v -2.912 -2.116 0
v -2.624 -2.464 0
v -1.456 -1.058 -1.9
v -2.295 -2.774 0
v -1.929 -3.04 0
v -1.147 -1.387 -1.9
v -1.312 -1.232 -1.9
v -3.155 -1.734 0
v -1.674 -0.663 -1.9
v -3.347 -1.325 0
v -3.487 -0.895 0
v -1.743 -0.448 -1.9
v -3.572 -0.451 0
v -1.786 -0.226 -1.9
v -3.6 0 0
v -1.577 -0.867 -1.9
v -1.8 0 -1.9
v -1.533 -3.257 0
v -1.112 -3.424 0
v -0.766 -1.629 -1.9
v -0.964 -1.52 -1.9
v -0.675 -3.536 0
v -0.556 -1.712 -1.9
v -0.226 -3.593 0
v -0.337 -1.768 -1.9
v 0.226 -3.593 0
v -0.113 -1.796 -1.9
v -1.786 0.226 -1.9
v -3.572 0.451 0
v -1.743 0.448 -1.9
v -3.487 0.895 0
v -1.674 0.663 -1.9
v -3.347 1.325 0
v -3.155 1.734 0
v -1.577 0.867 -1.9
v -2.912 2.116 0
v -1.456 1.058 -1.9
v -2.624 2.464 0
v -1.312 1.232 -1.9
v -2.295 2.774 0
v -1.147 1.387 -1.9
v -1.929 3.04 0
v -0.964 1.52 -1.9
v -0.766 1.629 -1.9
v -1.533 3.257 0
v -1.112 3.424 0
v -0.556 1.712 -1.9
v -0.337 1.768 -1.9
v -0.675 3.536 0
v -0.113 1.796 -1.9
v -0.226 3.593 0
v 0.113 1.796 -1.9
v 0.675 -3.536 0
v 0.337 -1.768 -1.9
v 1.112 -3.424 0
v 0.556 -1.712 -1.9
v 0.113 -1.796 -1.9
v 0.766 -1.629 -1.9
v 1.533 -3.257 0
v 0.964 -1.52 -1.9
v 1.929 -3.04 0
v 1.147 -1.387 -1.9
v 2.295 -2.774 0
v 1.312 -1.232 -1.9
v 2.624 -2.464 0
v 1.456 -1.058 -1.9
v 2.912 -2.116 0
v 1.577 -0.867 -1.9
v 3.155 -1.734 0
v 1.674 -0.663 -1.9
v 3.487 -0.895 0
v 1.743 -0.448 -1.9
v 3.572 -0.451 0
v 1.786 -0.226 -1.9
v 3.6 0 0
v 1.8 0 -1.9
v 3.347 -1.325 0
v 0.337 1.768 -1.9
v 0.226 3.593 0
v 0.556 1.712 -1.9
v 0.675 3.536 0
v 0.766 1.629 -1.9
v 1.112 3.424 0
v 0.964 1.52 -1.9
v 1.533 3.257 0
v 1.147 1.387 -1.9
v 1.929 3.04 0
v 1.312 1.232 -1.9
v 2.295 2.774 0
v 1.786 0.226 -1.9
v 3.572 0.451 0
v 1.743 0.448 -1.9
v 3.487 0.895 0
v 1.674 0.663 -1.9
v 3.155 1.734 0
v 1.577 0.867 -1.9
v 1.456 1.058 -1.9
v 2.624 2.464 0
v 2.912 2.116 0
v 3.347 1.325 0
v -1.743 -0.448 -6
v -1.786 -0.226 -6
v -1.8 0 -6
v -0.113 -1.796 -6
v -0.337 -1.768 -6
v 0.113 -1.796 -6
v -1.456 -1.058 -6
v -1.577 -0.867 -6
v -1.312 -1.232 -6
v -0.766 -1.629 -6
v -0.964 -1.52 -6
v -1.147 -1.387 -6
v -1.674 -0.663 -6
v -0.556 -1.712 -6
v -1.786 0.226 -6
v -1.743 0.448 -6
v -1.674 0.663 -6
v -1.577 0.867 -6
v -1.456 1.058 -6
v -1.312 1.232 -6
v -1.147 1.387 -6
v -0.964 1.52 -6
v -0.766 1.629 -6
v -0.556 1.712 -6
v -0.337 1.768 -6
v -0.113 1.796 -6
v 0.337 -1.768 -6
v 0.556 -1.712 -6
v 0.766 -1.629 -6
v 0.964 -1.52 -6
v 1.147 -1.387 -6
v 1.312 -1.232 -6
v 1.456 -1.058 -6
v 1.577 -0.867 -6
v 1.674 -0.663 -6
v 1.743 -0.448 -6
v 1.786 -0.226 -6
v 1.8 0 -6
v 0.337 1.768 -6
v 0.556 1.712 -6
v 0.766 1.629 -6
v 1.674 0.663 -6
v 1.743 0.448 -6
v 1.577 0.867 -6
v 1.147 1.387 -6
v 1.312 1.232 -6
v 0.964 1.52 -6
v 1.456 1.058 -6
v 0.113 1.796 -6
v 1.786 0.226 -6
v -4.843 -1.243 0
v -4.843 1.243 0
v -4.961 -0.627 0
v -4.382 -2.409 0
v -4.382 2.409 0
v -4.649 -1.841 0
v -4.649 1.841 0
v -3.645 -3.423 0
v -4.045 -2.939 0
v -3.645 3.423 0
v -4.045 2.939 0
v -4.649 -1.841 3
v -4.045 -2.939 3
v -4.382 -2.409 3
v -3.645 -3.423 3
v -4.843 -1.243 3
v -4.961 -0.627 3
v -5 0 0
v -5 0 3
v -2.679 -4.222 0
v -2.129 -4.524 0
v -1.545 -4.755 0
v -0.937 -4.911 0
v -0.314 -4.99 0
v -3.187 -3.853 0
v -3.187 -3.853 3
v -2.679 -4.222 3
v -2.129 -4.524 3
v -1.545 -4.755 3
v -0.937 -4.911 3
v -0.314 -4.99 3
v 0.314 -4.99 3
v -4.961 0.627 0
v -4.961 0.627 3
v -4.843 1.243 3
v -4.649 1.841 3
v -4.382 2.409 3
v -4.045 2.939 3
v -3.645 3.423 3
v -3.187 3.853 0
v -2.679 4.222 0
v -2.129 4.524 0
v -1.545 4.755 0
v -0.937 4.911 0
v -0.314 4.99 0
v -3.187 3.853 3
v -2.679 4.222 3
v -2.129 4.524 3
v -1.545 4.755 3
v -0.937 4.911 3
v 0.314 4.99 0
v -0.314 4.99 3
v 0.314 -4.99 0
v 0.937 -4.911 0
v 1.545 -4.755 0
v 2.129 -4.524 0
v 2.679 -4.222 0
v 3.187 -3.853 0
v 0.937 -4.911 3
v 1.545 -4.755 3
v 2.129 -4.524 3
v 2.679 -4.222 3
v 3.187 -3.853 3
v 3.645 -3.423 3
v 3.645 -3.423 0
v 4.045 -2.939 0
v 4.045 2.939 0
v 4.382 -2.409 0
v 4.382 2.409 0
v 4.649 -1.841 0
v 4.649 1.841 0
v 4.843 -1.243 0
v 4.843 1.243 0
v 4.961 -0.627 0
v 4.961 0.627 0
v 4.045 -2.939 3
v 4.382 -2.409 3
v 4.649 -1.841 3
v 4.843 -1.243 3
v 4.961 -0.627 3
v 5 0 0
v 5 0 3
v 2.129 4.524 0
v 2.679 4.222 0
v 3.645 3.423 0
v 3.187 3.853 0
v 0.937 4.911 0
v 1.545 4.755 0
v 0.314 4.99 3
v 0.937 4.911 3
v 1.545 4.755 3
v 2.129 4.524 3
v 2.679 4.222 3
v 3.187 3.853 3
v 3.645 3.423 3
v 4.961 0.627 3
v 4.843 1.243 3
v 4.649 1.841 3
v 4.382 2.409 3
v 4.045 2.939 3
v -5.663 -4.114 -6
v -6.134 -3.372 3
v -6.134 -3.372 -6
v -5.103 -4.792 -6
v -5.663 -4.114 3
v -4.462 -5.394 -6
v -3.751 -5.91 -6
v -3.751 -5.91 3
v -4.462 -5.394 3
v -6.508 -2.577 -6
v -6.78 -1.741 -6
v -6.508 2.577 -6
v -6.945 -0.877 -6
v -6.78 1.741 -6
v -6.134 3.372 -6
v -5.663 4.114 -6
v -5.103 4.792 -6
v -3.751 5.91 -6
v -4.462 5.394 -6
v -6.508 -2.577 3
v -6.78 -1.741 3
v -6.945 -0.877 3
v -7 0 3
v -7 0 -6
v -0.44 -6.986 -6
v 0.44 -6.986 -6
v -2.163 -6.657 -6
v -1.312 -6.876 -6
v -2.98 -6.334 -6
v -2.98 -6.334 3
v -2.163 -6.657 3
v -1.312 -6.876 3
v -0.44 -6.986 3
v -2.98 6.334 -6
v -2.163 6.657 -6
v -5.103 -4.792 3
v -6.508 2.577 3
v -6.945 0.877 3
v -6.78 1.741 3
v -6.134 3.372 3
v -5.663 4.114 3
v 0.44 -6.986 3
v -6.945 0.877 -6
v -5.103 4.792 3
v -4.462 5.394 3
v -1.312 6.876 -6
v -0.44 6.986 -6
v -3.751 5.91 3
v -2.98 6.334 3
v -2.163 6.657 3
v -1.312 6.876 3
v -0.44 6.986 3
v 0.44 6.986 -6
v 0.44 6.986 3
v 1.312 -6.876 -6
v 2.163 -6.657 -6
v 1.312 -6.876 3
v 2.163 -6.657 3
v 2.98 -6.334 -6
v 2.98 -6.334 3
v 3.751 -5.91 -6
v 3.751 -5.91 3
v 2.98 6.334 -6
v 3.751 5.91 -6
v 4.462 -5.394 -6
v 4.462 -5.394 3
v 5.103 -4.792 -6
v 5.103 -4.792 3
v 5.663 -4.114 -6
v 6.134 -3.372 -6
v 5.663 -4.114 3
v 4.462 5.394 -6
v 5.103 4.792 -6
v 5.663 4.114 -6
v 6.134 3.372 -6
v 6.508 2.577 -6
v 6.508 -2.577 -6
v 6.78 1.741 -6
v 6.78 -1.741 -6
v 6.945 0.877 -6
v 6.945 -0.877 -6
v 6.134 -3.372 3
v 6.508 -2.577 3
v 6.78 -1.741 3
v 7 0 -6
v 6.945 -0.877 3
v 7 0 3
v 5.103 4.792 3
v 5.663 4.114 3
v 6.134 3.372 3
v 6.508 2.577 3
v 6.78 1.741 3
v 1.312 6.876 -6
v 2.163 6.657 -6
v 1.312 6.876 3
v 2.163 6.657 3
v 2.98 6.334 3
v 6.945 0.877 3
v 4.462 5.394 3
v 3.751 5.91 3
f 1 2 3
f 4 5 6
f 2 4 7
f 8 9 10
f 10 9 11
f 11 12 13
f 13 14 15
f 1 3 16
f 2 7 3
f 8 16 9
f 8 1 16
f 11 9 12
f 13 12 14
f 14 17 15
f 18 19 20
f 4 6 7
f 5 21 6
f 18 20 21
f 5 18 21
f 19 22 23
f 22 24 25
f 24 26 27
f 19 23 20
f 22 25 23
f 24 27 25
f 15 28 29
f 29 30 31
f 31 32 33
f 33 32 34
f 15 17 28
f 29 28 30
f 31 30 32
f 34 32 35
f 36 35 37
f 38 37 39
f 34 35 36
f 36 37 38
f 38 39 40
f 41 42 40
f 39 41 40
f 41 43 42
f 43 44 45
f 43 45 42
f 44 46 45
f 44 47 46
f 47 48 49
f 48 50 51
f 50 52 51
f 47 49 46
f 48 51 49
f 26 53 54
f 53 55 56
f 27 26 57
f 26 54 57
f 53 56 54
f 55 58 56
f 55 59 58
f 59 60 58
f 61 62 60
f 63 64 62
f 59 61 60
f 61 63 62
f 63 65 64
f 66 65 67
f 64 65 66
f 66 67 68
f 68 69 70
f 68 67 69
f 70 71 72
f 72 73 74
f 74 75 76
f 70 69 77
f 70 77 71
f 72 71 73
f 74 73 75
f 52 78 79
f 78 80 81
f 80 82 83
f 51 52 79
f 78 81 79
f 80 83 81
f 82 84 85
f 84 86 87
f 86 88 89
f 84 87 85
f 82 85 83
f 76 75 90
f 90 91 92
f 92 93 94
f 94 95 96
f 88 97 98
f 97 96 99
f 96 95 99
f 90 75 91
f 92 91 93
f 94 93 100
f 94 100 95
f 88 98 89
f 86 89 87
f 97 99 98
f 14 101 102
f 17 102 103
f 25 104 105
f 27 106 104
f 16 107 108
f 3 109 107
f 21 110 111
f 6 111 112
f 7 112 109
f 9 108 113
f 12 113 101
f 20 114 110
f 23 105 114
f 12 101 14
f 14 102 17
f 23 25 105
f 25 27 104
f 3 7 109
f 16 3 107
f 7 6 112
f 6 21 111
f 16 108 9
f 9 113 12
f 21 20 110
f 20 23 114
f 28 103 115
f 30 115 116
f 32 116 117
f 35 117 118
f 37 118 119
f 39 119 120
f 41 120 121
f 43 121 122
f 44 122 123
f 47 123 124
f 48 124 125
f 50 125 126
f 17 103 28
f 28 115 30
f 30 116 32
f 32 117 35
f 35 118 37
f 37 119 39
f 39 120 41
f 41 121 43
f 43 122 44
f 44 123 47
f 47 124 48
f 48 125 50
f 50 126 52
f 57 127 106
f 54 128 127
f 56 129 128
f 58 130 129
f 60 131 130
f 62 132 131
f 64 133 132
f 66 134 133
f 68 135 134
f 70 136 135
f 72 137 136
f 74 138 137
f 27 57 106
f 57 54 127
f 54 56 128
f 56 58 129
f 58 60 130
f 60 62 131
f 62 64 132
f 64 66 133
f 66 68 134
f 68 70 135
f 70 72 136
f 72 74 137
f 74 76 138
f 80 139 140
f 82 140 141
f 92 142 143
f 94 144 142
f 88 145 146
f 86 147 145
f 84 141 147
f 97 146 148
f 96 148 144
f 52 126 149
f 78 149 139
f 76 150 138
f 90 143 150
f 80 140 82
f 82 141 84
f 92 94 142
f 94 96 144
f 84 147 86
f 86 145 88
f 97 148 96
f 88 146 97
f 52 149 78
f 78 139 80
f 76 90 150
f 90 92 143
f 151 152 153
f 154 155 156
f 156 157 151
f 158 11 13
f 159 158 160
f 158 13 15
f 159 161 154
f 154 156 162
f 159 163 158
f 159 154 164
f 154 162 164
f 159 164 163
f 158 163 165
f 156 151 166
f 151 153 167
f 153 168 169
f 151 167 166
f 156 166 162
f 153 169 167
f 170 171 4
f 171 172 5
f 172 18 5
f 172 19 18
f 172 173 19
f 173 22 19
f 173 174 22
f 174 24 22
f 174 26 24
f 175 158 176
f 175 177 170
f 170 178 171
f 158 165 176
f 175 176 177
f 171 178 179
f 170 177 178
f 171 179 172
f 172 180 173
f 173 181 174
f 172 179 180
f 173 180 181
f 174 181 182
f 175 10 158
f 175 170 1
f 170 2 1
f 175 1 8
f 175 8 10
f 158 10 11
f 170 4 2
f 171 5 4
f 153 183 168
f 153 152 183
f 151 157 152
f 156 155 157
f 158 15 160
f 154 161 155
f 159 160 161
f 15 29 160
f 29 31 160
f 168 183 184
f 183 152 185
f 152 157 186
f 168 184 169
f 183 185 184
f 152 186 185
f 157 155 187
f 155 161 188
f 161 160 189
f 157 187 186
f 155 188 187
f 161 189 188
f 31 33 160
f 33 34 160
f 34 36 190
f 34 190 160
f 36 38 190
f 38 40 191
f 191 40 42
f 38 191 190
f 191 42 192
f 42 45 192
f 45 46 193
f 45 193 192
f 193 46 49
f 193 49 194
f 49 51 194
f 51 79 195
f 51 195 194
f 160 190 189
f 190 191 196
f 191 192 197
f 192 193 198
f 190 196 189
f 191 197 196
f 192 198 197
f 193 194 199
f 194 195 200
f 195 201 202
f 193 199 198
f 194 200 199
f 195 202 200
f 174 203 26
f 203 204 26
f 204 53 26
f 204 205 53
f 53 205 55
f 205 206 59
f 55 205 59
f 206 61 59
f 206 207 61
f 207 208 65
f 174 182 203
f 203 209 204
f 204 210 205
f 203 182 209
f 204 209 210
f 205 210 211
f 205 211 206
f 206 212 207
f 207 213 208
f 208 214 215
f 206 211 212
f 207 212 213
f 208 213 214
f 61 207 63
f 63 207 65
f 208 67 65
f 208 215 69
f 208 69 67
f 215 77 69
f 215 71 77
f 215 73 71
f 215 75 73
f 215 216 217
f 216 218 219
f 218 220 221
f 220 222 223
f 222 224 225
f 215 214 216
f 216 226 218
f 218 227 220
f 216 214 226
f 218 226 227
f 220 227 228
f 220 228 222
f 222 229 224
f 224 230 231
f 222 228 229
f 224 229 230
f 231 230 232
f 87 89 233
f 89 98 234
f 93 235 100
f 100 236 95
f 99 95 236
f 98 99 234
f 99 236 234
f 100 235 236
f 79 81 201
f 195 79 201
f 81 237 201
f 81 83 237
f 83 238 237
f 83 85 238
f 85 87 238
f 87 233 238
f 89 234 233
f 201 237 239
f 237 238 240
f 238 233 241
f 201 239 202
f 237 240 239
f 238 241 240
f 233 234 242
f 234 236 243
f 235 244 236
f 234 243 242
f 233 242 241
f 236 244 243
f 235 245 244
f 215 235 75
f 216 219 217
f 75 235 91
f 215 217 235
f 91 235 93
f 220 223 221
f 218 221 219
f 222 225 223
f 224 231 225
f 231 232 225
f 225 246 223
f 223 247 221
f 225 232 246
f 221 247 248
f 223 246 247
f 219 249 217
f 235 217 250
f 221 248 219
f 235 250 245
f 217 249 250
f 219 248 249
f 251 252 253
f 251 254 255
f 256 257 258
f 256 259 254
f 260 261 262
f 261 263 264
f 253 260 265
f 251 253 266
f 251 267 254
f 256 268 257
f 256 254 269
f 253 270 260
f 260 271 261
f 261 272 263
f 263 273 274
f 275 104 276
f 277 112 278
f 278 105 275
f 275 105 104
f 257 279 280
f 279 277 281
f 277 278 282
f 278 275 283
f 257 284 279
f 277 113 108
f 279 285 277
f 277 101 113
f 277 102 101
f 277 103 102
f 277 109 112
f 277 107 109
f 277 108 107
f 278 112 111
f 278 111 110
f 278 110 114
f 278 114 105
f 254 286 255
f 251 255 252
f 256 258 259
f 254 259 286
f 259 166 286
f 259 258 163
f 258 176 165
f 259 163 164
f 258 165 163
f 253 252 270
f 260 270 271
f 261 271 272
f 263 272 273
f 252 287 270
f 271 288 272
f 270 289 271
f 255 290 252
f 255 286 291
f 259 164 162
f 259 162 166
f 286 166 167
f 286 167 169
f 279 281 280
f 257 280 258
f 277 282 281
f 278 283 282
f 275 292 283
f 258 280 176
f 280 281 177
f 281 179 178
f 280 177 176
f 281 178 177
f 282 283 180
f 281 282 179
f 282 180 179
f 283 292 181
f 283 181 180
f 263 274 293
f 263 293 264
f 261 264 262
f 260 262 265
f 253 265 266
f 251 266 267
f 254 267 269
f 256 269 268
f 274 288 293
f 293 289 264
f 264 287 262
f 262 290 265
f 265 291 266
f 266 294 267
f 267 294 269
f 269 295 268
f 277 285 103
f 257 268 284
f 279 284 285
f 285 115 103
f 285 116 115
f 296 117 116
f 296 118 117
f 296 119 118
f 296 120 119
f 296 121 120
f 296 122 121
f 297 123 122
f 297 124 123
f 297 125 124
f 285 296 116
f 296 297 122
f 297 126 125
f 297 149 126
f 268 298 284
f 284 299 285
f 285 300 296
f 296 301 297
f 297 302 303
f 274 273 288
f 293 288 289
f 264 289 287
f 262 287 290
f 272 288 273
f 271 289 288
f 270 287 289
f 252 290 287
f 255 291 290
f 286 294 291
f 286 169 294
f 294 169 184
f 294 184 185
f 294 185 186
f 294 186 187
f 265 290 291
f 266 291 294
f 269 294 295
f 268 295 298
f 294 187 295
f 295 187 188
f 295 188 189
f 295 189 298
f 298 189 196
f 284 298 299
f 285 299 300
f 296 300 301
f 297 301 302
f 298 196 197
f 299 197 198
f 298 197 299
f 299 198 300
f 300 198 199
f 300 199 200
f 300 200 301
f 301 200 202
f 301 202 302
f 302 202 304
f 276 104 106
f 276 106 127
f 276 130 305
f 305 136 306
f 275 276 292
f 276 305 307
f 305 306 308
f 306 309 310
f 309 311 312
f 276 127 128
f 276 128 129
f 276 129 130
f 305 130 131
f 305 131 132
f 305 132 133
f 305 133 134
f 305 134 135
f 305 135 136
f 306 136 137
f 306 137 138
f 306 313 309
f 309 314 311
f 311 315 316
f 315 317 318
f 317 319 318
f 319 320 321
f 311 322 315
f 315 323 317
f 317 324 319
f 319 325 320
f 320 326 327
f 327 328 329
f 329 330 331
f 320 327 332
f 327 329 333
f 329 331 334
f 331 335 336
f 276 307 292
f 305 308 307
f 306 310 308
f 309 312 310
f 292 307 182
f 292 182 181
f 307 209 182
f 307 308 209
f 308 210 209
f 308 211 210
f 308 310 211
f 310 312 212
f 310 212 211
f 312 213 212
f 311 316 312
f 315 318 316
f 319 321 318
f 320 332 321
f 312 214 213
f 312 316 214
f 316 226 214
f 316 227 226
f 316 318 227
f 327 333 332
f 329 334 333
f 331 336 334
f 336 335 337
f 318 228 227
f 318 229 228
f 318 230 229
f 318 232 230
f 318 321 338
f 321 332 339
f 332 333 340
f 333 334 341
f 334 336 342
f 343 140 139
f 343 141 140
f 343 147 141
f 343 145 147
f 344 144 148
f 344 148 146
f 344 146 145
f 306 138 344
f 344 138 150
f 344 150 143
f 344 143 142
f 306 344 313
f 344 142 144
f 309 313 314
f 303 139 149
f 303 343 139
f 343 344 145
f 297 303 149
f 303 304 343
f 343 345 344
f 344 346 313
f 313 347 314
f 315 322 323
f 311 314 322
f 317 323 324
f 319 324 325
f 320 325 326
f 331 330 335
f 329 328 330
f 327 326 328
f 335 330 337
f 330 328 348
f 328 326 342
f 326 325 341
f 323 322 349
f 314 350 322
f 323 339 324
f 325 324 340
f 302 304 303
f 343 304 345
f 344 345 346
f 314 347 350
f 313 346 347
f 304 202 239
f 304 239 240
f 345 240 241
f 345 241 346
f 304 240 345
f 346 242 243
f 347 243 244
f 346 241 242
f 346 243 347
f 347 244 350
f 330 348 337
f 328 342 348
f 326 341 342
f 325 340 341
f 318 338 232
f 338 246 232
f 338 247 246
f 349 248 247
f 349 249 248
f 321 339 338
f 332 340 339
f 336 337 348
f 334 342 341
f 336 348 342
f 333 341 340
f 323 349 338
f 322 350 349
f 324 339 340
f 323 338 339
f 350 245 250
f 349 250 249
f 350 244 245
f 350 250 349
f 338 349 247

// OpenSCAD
$fn = 50;

difference() {
	union() {
		translate(v = [0, 0, -6.0]) {
			cylinder(h = 9, r = 7.0);
		}
	}
	union() {
		translate(v = [0, 0, 0]) {
			rotate(a = [0, 0, 0]) {
				difference() {
					union() {
						translate(v = [0, 0, -9.0]) {
							cylinder(h = 9, r = 1.5);
						}
						translate(v = [0, 0, -1.9]) {
							cylinder(h = 1.9, r1 = 1.8, r2 = 3.6);
						}
						translate(v = [0, 0, -9.0]) {
							cylinder(h = 9, r = 1.8);
						}
						translate(v = [0, 0, -9.0]) {
							cylinder(h = 9, r = 1.5);
						}
					}
					union();
				}
			}
		}
		#cylinder(h = 3, r = 5.0);
	}
}
